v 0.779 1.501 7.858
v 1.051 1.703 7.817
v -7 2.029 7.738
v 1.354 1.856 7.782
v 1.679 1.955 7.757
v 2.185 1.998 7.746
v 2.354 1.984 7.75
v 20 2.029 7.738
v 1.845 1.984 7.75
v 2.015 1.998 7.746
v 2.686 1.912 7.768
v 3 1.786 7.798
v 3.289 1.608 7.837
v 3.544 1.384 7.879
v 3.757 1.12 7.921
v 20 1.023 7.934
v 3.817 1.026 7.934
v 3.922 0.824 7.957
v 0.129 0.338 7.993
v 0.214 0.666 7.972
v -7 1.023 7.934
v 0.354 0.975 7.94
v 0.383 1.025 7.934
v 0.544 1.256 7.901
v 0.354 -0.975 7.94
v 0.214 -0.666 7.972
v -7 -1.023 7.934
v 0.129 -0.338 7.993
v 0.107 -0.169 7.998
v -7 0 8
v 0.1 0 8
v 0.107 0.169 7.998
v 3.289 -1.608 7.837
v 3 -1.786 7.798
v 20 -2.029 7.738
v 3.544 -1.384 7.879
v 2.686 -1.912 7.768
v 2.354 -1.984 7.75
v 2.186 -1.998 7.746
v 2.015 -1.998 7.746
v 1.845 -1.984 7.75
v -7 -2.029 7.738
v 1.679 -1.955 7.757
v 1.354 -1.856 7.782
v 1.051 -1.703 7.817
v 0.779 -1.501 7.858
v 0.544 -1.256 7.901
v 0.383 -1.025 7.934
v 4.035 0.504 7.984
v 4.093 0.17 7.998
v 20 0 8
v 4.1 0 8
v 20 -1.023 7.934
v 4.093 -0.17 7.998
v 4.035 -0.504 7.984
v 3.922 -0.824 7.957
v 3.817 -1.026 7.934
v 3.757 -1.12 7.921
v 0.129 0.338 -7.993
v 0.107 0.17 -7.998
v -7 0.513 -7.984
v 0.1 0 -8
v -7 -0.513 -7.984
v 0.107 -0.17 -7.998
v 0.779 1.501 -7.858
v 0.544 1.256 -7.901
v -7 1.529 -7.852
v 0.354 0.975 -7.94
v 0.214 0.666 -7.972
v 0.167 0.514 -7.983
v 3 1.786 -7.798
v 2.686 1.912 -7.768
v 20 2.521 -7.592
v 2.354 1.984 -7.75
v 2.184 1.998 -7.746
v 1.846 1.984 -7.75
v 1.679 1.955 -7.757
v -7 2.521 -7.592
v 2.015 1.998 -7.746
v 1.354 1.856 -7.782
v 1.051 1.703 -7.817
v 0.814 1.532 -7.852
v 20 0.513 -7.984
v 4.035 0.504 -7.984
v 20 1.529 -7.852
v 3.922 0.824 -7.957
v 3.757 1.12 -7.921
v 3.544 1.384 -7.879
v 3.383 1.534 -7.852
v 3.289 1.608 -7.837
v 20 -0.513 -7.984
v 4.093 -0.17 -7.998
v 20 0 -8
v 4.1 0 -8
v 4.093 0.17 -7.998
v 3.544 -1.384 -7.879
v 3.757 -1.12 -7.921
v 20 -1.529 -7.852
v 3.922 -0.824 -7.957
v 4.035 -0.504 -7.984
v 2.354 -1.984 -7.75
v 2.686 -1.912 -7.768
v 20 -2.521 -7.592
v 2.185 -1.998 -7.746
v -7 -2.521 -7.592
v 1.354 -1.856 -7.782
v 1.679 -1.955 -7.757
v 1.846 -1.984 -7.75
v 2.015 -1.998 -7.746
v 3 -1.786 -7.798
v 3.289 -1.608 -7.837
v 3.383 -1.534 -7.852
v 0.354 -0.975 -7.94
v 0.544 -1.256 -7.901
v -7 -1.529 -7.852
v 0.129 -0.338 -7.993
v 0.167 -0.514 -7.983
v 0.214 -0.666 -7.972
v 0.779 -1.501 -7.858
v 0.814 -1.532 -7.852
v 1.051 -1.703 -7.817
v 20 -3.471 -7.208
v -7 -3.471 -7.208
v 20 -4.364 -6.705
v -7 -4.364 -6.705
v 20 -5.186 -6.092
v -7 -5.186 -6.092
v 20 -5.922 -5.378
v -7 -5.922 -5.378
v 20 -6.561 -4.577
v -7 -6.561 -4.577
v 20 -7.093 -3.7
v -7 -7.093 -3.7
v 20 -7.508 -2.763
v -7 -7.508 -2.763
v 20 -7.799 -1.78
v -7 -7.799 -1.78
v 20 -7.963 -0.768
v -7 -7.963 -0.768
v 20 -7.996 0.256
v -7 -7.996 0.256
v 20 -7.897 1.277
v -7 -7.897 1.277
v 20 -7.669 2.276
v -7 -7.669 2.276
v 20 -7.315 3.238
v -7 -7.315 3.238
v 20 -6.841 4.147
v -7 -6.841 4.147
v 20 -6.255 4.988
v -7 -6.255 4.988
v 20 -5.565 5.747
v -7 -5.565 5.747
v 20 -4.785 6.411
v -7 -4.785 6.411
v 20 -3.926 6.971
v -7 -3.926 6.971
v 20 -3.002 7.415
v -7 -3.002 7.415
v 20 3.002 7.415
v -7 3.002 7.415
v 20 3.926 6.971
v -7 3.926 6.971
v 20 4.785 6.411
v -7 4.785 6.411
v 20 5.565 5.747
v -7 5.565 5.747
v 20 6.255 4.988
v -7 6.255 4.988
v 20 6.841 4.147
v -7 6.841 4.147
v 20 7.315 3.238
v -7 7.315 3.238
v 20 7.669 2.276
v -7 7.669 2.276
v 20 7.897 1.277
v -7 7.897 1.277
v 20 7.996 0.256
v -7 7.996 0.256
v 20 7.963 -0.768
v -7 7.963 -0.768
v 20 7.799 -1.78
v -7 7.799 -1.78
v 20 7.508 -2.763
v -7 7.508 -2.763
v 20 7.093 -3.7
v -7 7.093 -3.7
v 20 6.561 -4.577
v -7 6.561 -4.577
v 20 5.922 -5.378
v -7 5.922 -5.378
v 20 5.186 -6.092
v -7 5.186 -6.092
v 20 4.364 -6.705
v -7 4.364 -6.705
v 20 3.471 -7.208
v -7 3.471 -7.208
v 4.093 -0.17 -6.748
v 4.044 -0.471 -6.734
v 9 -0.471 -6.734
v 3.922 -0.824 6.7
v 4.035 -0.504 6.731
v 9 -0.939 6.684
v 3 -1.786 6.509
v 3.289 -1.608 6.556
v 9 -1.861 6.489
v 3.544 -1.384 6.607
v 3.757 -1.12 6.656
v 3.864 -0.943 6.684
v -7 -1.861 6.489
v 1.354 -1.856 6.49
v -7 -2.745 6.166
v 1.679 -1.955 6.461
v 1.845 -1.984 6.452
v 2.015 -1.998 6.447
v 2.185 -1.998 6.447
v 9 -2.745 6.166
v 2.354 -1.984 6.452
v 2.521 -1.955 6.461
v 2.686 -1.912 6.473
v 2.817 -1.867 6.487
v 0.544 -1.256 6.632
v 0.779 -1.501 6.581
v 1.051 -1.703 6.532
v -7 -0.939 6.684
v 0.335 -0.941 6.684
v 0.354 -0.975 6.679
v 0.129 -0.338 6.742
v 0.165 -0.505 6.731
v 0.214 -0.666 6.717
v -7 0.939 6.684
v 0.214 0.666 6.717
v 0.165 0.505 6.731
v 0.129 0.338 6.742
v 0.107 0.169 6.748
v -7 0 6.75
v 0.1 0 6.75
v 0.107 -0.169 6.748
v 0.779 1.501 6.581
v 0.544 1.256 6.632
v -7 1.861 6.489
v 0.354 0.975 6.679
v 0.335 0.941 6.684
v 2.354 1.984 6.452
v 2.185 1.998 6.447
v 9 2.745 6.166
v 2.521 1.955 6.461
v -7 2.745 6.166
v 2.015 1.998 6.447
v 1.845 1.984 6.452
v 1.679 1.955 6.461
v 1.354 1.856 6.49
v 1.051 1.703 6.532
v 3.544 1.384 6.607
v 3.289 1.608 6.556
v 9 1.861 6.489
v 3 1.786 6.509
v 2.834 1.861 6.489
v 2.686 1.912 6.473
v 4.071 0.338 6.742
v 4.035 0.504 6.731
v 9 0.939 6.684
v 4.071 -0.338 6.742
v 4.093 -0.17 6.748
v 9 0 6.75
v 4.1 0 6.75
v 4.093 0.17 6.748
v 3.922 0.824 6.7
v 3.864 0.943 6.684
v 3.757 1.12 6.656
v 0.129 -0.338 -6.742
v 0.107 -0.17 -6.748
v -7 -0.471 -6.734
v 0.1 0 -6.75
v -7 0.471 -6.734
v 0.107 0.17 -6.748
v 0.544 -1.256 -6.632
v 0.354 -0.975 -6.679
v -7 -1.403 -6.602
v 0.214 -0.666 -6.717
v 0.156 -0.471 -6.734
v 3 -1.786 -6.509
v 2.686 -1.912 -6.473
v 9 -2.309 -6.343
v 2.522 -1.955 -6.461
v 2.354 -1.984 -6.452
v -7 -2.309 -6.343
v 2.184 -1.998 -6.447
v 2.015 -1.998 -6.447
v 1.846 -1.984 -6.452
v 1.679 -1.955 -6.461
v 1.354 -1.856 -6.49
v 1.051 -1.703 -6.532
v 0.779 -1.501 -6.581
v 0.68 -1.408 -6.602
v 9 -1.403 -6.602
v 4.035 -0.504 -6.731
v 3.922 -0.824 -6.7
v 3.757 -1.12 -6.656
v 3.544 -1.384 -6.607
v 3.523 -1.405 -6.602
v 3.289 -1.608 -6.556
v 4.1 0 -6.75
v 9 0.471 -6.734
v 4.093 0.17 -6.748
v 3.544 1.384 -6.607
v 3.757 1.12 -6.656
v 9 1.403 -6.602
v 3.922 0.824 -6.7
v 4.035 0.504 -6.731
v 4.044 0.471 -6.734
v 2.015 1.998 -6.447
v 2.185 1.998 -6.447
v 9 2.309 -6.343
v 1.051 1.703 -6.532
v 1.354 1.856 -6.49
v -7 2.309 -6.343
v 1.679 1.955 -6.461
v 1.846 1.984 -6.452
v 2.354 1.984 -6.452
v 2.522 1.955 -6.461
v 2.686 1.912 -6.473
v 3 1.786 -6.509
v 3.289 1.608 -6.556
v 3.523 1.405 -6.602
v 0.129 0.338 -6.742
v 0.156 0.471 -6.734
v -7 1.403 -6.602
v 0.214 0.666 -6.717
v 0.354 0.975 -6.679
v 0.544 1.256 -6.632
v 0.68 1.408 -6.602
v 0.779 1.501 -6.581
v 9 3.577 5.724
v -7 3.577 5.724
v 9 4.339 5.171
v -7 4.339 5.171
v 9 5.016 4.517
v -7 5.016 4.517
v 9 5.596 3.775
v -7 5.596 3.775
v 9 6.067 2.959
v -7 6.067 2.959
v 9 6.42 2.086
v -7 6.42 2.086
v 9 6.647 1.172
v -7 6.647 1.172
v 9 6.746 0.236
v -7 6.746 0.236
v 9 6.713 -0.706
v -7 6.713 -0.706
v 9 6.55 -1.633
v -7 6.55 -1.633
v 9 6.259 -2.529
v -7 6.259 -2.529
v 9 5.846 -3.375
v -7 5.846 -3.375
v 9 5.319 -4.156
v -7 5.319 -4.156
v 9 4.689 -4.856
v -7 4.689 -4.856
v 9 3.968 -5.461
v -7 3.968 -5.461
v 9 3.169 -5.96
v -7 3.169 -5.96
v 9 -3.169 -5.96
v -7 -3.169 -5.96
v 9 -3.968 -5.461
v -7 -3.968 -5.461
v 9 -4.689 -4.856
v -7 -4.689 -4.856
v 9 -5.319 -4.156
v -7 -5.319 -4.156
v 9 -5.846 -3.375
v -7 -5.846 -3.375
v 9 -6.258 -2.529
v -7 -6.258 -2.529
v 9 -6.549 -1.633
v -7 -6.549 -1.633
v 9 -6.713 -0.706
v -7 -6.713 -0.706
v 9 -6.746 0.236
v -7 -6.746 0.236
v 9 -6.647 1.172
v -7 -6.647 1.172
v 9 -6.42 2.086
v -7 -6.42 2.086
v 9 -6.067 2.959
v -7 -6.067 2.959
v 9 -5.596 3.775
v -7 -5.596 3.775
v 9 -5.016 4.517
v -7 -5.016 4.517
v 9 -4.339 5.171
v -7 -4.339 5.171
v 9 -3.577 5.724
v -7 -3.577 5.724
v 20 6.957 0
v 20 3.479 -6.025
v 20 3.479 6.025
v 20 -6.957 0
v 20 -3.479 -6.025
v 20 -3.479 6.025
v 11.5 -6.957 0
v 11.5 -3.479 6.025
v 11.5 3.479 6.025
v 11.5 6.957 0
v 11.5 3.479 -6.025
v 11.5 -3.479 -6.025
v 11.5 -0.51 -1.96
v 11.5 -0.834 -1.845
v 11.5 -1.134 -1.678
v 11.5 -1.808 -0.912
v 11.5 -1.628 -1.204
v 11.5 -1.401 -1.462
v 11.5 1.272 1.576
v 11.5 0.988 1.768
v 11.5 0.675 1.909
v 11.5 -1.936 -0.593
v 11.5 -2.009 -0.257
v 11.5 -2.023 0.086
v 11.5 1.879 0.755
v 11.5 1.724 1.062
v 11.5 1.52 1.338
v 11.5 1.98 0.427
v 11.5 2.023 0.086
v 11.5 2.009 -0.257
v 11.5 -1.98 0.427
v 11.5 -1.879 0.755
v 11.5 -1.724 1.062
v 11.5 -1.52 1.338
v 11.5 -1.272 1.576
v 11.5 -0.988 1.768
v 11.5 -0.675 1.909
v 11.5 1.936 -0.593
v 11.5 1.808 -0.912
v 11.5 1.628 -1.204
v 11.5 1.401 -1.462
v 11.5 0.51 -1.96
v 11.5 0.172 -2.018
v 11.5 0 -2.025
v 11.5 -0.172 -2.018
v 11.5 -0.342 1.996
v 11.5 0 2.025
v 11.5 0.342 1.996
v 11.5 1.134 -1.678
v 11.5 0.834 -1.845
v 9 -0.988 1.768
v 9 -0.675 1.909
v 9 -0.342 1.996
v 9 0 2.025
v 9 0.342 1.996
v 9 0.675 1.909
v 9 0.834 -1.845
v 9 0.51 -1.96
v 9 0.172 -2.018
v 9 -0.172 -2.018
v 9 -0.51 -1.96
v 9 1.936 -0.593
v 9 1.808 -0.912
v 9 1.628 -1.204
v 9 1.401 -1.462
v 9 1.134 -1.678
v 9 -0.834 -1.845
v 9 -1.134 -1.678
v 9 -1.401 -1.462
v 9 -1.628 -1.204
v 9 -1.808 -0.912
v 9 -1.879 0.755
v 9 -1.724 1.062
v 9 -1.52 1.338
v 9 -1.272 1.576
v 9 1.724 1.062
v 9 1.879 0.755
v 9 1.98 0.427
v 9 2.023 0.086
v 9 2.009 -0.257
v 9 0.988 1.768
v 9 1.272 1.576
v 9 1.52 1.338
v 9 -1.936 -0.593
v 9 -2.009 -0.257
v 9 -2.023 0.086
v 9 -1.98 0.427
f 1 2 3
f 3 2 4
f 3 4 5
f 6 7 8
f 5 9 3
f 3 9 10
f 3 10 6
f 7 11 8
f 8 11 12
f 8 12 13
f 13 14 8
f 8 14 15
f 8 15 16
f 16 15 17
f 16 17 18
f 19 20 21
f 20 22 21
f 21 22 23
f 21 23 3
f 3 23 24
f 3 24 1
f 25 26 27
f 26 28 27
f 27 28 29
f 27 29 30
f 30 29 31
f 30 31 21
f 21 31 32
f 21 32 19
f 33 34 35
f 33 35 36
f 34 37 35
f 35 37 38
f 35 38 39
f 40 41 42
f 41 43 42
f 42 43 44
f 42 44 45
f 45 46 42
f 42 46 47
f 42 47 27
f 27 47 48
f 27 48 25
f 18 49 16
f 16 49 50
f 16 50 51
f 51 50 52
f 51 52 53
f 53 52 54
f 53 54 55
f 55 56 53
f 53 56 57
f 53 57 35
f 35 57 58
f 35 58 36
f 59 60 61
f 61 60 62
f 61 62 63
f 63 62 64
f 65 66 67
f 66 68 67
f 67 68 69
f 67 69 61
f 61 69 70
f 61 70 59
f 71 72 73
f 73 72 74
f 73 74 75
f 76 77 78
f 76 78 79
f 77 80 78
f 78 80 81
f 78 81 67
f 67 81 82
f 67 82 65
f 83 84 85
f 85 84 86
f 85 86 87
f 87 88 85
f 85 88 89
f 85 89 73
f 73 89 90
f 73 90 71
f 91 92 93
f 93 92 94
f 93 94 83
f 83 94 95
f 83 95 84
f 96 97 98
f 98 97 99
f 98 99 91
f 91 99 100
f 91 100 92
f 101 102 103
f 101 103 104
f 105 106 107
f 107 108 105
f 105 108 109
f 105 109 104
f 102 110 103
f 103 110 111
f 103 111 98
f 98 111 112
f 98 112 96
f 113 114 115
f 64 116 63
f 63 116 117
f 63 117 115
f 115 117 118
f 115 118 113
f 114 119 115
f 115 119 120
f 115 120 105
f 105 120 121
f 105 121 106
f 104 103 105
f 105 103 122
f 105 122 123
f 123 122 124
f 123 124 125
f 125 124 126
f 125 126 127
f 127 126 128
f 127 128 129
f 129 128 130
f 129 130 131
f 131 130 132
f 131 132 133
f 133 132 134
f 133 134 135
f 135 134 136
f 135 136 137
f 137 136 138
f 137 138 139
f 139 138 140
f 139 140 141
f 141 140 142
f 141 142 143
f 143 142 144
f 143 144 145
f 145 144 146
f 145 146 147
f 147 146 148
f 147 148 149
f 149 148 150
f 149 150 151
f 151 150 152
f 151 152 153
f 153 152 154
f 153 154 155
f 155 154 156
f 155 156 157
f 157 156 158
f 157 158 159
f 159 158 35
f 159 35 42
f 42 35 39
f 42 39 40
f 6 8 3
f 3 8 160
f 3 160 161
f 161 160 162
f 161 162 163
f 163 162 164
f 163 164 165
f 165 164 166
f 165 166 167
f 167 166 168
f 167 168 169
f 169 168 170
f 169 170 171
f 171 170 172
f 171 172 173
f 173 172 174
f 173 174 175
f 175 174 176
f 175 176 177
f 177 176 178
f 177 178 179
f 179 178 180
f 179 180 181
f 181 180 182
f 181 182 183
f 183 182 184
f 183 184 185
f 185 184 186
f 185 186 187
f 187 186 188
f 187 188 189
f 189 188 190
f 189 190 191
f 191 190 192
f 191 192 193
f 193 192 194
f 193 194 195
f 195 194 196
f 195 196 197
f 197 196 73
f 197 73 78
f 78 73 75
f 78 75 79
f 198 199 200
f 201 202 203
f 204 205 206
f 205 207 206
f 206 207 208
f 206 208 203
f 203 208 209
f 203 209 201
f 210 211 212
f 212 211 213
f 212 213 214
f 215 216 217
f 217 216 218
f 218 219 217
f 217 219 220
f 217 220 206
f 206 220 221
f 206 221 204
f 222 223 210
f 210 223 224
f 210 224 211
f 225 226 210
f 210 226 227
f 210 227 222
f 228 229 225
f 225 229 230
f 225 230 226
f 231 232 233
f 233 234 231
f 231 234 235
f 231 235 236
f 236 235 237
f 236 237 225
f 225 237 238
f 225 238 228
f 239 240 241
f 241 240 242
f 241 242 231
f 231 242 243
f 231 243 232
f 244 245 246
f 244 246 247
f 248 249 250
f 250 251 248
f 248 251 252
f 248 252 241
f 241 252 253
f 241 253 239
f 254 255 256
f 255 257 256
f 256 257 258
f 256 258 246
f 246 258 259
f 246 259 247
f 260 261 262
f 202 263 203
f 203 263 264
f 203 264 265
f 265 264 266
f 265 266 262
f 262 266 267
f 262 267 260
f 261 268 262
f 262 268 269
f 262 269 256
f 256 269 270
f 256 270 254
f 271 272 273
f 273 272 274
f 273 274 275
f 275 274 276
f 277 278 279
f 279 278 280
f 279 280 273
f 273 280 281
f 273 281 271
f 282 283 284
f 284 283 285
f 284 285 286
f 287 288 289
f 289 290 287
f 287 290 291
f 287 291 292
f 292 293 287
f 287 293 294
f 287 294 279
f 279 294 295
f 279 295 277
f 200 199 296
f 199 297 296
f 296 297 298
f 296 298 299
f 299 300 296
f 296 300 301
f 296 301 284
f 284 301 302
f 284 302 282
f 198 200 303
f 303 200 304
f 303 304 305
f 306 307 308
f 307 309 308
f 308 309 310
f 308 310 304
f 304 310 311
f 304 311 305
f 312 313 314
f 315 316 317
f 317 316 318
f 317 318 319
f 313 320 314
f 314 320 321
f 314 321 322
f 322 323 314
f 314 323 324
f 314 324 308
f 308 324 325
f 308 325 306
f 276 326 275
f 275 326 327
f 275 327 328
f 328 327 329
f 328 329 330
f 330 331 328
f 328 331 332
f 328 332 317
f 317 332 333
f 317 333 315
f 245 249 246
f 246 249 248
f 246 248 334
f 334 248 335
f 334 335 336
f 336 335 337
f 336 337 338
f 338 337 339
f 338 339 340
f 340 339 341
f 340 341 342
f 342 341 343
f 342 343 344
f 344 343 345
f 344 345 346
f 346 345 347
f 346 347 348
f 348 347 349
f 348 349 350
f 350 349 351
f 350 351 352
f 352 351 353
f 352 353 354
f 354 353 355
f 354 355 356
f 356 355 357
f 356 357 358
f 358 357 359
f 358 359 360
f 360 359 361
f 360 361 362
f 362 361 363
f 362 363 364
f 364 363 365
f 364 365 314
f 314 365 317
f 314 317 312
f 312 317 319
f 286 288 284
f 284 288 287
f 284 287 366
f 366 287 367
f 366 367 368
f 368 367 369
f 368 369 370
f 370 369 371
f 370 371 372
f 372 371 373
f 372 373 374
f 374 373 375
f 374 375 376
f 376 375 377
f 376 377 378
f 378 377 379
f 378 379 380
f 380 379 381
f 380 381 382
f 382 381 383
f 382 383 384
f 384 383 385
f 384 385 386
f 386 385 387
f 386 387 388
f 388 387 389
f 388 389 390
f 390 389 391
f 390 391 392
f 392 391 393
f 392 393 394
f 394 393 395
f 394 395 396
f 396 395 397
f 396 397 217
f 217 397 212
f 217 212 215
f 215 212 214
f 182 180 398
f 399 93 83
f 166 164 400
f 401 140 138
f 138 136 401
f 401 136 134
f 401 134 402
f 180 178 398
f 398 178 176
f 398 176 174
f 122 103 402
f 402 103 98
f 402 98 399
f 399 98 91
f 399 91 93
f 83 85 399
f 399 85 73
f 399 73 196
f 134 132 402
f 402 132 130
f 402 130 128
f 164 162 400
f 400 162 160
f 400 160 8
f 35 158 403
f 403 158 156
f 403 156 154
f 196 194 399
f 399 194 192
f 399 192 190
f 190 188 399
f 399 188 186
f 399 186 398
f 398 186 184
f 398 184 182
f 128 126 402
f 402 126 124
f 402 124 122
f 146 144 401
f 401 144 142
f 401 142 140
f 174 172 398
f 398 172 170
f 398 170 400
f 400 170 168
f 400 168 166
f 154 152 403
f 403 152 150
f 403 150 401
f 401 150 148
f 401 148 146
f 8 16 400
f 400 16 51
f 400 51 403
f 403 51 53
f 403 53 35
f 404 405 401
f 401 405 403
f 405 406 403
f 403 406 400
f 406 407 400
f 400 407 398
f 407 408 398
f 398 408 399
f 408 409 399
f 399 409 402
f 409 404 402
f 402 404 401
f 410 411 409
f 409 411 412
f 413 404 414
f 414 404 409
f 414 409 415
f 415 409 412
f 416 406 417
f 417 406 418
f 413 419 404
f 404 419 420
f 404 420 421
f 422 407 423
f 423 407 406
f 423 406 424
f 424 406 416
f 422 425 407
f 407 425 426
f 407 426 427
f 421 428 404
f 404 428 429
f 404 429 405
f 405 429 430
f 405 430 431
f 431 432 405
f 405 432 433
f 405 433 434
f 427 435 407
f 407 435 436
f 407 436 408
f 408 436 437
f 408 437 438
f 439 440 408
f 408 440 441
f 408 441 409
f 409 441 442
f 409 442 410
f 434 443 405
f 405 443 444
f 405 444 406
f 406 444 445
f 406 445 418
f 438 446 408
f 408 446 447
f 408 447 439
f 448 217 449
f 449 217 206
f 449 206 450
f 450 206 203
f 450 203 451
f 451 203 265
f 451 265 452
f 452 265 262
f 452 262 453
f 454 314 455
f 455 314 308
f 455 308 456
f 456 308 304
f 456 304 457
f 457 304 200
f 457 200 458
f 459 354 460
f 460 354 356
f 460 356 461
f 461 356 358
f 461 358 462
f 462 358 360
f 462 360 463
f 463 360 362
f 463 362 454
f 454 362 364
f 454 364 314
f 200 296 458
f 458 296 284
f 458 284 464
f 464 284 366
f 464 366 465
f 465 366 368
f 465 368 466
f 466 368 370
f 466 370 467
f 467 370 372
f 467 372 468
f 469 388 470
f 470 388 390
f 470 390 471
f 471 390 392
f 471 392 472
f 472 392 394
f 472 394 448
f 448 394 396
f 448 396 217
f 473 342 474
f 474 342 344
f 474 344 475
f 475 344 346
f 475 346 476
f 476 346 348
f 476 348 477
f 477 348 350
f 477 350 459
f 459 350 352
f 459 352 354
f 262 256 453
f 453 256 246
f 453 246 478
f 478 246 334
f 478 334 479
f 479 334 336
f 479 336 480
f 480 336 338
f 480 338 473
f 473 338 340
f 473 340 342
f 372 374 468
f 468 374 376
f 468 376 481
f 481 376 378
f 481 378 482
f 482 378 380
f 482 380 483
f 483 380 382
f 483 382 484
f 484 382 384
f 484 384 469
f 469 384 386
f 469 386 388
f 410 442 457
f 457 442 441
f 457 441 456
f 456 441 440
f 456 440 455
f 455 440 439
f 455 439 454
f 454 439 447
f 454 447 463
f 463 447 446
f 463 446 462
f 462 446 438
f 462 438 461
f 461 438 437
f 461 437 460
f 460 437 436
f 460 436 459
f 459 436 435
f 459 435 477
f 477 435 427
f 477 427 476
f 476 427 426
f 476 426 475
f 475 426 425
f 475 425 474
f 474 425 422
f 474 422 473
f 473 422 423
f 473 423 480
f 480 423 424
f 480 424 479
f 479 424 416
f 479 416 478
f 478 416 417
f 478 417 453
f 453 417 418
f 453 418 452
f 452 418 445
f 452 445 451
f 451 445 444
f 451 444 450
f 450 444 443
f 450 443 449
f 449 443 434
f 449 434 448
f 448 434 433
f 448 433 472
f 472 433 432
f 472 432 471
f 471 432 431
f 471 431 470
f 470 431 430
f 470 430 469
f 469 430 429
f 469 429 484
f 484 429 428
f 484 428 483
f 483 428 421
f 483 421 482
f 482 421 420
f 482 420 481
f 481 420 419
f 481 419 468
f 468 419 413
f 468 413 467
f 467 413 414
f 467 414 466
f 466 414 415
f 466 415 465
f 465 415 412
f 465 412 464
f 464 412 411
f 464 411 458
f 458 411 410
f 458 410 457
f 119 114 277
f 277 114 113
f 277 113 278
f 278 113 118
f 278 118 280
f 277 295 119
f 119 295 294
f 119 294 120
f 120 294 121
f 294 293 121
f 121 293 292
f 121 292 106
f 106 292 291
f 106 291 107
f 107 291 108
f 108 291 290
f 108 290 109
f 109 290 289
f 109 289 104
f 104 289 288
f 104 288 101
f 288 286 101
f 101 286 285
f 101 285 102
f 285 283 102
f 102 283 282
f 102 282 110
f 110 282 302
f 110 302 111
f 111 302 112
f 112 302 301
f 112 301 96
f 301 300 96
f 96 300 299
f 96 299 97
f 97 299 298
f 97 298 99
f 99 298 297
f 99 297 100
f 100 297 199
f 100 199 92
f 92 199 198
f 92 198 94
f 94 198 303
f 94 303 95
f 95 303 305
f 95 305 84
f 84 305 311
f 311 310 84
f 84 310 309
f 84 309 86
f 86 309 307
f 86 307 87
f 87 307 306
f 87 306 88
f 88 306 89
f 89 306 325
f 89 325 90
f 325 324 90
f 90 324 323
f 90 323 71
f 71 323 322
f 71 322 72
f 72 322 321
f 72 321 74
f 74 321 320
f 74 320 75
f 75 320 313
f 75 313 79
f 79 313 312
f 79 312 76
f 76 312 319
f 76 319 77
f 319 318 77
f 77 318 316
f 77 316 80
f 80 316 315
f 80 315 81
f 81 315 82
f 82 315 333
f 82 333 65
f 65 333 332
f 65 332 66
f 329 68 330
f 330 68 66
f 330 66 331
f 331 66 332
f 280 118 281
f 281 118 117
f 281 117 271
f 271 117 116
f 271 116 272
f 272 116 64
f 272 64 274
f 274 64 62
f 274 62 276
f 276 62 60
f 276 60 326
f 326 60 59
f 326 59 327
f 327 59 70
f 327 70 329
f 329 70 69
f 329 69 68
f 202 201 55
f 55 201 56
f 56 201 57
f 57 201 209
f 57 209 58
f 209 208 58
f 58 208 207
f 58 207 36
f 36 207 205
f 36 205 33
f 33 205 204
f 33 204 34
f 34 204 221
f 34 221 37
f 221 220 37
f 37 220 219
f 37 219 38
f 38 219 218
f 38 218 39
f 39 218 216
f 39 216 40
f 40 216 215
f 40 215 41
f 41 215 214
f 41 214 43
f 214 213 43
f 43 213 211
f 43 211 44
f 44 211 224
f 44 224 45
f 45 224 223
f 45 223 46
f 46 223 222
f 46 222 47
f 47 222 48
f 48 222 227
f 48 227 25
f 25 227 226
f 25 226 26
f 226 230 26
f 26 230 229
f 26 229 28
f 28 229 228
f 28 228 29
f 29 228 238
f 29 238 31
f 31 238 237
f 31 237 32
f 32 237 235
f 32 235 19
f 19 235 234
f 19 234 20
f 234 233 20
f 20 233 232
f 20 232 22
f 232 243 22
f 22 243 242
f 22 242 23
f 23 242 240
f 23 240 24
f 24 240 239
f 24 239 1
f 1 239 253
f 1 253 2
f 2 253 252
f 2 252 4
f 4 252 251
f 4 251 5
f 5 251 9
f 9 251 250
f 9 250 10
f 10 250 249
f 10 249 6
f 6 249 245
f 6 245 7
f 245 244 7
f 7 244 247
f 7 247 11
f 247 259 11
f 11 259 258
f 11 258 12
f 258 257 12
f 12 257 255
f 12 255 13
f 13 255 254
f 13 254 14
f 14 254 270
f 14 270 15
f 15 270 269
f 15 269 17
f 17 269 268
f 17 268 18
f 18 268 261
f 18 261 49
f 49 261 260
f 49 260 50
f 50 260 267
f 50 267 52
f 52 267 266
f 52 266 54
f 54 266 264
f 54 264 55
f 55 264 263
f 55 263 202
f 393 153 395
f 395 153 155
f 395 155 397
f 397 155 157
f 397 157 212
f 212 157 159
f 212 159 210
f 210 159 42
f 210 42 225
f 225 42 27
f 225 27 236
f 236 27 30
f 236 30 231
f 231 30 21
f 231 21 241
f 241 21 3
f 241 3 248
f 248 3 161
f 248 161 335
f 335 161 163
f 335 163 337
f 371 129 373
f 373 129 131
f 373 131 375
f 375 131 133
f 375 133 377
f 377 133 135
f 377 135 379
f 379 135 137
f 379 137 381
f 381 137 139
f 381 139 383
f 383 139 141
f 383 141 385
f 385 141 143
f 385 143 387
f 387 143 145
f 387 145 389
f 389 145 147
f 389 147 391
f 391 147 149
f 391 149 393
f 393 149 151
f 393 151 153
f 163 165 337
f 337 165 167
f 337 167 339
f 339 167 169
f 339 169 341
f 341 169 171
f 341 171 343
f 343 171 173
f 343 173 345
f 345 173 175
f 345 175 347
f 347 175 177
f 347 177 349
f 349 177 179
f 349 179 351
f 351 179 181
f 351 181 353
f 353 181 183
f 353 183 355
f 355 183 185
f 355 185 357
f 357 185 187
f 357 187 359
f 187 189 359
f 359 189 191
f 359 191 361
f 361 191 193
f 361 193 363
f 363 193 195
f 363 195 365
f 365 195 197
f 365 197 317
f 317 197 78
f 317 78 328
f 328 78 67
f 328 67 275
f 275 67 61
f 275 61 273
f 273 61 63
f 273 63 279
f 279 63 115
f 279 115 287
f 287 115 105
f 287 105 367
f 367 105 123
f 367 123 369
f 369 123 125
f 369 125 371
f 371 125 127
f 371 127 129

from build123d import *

# Parameters (mm, degrees)
CROQUIS1_R                 = 8
SALIENTE_EXTRUIR1_DEPTH    = 20
CORTAR_EXTRUIR1_DEPTH      = 8.5
CROQUIS3_R                 = 6.75
CORTAR_EXTRUIR2_DEPTH      = 9
CORTAR_EXTRUIR3_REACH      = 17.78
CROQUIS4_R                 = 2.025
CORTAR_EXTRUIR4_DEPTH      = 9
CORTAR_EXTRUIR4_DEPTH_BACK = 23.978250586
CROQUIS5_R                 = 2
SALIENTE_EXTRUIR2_START    = 7
CROQUIS6_R                 = 8
CROQUIS6_R_2               = 6.75
SALIENTE_EXTRUIR2_DEPTH    = 7


with BuildPart() as part:
    # Croquis1 → Saliente-Extruir1 (new body)
    with BuildSketch(Plane(origin=(0, 0, 0), x_dir=(0, 0, -1), z_dir=(1, 0, 0))):
        Circle(CROQUIS1_R)
    extrude(amount=SALIENTE_EXTRUIR1_DEPTH)

    # Croquis2 → Cortar-Extruir1 (cut)
    with BuildSketch(Plane(origin=(20, 0, 0), x_dir=(0, 0, -1), z_dir=(1, 0, 0))):
        Polygon((0, -6.957070744), (6.025, -3.478535372), (6.025, 3.478535372), (0, 6.957070744), (-6.025, 3.478535372), (-6.025, -3.478535372), align=None)
    extrude(amount=-CORTAR_EXTRUIR1_DEPTH, mode=Mode.SUBTRACT)

    # Croquis3 → Cortar-Extruir2 (cut)
    with BuildSketch(Plane.ZY):
        Circle(CROQUIS3_R)
    extrude(amount=-CORTAR_EXTRUIR2_DEPTH, mode=Mode.SUBTRACT)

    # Croquis4 → Cortar-Extruir3 (cut, up to next)
    with BuildSketch(Plane.ZY.offset(-9), mode=Mode.PRIVATE) as cortar_extruir3_sk1:
        Circle(CROQUIS4_R)
    cortar_extruir3_tool1 = extrude(cortar_extruir3_sk1.sketch, amount=-CORTAR_EXTRUIR3_REACH, mode=Mode.PRIVATE) & part.part
    add(cortar_extruir3_tool1.solids().sort_by_distance((9, 0, 0))[0], mode=Mode.SUBTRACT)

    # Croquis5 → Cortar-Extruir4 (cut, two sides: drawn at the far end of the back side and taken through both)
    with BuildSketch(Plane.XY.offset(-CORTAR_EXTRUIR4_DEPTH_BACK)):
        with Locations(Location((2.1, 0, 0), (0, 0, 180))):
            Circle(CROQUIS5_R)
    extrude(amount=CORTAR_EXTRUIR4_DEPTH + CORTAR_EXTRUIR4_DEPTH_BACK, mode=Mode.SUBTRACT)

    # Croquis6 → Saliente-Extruir2 (add)
    with BuildSketch(Plane.ZY.offset(SALIENTE_EXTRUIR2_START)):
        Circle(CROQUIS6_R)
        Circle(CROQUIS6_R_2, mode=Mode.SUBTRACT)
    extrude(amount=-SALIENTE_EXTRUIR2_DEPTH)


solid = part.part
